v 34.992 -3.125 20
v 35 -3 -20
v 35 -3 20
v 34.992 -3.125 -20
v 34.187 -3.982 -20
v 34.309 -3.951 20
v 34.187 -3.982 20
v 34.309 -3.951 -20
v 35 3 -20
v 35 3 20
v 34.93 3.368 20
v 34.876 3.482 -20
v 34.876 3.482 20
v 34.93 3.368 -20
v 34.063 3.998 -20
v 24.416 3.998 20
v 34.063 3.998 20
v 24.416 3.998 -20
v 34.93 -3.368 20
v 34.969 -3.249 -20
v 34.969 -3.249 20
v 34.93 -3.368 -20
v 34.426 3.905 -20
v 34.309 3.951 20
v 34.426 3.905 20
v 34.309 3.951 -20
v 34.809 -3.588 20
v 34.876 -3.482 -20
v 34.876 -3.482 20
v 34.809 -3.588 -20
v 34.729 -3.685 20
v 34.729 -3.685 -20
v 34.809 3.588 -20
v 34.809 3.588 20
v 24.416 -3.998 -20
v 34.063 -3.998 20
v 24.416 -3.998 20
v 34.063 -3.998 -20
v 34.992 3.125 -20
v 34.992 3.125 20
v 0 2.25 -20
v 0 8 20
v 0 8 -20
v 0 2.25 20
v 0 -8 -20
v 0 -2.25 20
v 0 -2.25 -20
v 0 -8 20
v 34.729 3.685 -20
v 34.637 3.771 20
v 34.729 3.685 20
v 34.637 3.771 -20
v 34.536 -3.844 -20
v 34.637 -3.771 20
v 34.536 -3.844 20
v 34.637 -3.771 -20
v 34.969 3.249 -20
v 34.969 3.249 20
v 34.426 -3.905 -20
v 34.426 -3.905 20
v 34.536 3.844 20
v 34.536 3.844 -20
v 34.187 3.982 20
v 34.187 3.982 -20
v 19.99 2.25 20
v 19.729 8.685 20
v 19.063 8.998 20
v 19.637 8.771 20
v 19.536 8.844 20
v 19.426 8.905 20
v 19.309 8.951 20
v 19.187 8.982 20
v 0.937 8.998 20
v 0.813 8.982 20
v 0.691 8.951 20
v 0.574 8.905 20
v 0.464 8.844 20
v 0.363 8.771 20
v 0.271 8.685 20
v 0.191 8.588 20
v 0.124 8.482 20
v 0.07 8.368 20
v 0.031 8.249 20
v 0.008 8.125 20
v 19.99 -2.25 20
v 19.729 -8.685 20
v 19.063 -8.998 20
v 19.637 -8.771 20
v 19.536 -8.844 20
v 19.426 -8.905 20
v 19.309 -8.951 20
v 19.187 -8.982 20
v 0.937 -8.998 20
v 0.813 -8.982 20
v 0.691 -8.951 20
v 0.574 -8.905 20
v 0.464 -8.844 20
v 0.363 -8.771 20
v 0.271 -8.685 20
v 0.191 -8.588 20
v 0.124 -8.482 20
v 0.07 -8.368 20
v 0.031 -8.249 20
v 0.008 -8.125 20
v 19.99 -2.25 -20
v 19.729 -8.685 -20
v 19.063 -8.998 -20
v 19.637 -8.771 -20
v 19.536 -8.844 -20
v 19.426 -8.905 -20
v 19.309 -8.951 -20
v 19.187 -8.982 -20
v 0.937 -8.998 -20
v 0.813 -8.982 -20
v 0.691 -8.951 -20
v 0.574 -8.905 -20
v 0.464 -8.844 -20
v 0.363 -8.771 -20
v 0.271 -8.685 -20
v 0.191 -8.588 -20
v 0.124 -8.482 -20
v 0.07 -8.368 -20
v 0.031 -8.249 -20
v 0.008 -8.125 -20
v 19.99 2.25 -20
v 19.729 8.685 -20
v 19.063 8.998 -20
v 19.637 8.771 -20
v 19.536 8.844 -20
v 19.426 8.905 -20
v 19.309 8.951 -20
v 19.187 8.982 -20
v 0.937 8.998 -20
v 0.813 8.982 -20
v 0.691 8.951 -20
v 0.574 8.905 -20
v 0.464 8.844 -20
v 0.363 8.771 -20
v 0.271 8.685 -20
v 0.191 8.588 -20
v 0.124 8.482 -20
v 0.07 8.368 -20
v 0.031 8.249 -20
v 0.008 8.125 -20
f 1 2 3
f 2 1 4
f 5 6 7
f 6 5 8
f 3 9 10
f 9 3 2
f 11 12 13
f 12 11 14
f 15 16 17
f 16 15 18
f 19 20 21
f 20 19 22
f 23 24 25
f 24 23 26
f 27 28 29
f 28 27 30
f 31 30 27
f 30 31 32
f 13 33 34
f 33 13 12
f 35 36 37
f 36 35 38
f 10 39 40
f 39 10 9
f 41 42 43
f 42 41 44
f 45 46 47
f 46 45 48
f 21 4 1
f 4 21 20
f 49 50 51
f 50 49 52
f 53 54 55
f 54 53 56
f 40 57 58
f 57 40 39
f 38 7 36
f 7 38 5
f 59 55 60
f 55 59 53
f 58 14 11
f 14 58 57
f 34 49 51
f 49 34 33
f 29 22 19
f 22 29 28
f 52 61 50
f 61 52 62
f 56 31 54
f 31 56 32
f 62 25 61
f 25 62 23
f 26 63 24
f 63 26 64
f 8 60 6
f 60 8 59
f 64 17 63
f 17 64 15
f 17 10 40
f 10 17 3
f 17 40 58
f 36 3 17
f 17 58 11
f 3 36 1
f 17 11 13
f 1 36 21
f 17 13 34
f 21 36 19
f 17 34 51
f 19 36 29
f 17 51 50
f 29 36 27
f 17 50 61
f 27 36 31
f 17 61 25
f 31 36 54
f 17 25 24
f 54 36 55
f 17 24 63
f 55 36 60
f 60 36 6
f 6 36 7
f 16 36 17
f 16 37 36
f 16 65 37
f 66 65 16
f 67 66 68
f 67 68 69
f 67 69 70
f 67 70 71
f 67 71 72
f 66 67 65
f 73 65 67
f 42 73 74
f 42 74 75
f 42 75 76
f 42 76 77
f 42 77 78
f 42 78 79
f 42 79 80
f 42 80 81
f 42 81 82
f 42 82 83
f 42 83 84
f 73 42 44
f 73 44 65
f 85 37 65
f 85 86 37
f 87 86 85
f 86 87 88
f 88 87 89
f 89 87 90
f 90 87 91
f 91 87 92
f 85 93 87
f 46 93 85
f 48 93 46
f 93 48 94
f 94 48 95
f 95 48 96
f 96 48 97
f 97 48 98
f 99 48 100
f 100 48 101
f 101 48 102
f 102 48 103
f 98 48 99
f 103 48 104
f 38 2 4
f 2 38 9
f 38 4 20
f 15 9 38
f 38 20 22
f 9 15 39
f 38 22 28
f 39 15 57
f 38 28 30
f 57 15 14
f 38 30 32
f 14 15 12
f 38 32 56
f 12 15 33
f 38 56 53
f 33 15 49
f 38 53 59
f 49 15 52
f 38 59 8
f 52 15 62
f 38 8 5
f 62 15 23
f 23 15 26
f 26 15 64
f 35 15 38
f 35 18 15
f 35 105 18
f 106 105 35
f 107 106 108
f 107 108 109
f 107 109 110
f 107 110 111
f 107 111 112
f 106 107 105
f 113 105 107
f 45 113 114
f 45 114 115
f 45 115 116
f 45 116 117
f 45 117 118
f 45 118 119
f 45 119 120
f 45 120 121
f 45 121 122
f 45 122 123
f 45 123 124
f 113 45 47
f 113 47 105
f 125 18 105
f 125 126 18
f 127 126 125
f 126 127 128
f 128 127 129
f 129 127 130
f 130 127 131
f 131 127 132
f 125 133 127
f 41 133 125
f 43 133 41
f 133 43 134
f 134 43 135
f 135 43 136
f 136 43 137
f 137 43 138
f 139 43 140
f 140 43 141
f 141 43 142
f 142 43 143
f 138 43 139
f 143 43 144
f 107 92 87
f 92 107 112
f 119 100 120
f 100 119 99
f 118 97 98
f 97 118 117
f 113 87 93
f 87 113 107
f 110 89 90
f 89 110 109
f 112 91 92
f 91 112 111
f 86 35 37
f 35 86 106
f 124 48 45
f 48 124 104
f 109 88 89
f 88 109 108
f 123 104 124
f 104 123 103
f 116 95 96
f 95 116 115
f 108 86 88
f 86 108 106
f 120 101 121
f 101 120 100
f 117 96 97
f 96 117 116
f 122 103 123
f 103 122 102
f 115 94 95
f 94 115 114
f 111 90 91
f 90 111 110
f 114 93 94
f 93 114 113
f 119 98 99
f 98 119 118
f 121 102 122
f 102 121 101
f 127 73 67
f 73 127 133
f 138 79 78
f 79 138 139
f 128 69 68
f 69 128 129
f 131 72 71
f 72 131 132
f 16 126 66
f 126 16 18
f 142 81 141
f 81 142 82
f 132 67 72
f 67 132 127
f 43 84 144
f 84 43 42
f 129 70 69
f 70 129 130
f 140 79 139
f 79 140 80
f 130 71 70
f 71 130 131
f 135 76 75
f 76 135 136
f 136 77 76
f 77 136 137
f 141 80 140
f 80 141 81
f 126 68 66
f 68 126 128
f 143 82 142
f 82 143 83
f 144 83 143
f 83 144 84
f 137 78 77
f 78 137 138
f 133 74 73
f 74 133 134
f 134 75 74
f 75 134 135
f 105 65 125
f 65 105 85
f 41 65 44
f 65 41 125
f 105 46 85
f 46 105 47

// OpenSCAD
// Stab two at fridge-shelf-holder

// Out measures of holder
length = 40;
width = 37;
height = 15;
underside_height = 3;
solid_width = 21;

// Corner fillet radius
//fillet = 1;

// shelf thickness, + padding
shelf_thickness = 4 + 0.5;
cutout_width = 20;
cutout_offset = 4; // Amount of part not getting a cutout


// Alternative measures
thickness_plate = 18;    // Thickness across the part that holds the class plate
thickness_support = 8;  // Thickness of the support
width = 35;              // Total width of the part
width_plate = 18;        // Width of cutout for plate
width_support = 12;      // Width of part for support
width_transition = width - width_plate - width_support;
thickness_transition = thickness_plate - thickness_support;
corner_radius = 1;       // Add roundness to the corners.
// These makes more sense, when looking at the polygon below.


module main () {
    difference(){
    cube([length,height,width], center = true);

    // And, cut it with this

    translate([0,height/2-shelf_thickness/2-underside_height,solid_width])
    cube([length + 10, shelf_thickness, width], center = true);
    }
}

/*

Ascii art of profile

p1  +----+ p2
    |     \
    |   p3 +----+ p4
    |           |
p0  +-----------+ p5

extruded, mirroed, and gets a partial cutout

*/
module alt_base_shape(length) {
    linear_extrude(height=length, center=true) {
        polygon(points = [
                [corner_radius,0], // p0
                [corner_radius, thickness_plate / 2.0 - corner_radius], // p1
                [corner_radius + width_plate, thickness_plate / 2.0 - corner_radius], // p2
                [corner_radius + width_plate + width_transition, thickness_support / 2.0 - corner_radius], // p3
                [width - corner_radius, thickness_support / 2.0 - corner_radius],
                [width - corner_radius, 0]
            ]);
    }
}

$fn = 50;
module alternative(length, padding) {
    difference() {
        translate([0,0,-corner_radius/2.0]) {
            minkowski() { // Basic shape, without cutout
                union() {
                    alt_base_shape(length-corner_radius);
                    mirror([0,1,0]) {
                        alt_base_shape(length-corner_radius);
                    }
                }
                cylinder(r = corner_radius);
            }
        }
        translate([cutout_width/2.0-0.01,0,-padding]) {
#            cube(size=[cutout_width, shelf_thickness, length+0.1], center=true);
        }
    } 
}
    
// Corner piece
module corner() {
    special_size = 20;
    difference() {
        alternative(special_size, cutout_offset);
        translate([25+width-width_support+1.4,0,-11])
        cube(size=[50, thickness_support + 2, special_size], center=true);       
    }
}

alternative(40, 0);



// main();
